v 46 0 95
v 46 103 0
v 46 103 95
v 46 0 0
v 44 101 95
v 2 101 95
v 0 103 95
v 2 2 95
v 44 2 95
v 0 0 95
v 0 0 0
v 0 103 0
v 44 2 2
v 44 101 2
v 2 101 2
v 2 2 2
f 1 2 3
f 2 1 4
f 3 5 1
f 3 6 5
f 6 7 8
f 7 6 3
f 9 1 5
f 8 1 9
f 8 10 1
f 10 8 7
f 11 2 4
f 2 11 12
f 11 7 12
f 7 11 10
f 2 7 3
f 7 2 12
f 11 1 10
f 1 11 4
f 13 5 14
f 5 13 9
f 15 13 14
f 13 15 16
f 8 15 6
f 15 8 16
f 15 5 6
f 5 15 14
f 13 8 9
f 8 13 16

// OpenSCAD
difference() {
  cube([46,103,95]);
  translate([2,2,2]) {
    cube([42,99,100]);
  };
};
